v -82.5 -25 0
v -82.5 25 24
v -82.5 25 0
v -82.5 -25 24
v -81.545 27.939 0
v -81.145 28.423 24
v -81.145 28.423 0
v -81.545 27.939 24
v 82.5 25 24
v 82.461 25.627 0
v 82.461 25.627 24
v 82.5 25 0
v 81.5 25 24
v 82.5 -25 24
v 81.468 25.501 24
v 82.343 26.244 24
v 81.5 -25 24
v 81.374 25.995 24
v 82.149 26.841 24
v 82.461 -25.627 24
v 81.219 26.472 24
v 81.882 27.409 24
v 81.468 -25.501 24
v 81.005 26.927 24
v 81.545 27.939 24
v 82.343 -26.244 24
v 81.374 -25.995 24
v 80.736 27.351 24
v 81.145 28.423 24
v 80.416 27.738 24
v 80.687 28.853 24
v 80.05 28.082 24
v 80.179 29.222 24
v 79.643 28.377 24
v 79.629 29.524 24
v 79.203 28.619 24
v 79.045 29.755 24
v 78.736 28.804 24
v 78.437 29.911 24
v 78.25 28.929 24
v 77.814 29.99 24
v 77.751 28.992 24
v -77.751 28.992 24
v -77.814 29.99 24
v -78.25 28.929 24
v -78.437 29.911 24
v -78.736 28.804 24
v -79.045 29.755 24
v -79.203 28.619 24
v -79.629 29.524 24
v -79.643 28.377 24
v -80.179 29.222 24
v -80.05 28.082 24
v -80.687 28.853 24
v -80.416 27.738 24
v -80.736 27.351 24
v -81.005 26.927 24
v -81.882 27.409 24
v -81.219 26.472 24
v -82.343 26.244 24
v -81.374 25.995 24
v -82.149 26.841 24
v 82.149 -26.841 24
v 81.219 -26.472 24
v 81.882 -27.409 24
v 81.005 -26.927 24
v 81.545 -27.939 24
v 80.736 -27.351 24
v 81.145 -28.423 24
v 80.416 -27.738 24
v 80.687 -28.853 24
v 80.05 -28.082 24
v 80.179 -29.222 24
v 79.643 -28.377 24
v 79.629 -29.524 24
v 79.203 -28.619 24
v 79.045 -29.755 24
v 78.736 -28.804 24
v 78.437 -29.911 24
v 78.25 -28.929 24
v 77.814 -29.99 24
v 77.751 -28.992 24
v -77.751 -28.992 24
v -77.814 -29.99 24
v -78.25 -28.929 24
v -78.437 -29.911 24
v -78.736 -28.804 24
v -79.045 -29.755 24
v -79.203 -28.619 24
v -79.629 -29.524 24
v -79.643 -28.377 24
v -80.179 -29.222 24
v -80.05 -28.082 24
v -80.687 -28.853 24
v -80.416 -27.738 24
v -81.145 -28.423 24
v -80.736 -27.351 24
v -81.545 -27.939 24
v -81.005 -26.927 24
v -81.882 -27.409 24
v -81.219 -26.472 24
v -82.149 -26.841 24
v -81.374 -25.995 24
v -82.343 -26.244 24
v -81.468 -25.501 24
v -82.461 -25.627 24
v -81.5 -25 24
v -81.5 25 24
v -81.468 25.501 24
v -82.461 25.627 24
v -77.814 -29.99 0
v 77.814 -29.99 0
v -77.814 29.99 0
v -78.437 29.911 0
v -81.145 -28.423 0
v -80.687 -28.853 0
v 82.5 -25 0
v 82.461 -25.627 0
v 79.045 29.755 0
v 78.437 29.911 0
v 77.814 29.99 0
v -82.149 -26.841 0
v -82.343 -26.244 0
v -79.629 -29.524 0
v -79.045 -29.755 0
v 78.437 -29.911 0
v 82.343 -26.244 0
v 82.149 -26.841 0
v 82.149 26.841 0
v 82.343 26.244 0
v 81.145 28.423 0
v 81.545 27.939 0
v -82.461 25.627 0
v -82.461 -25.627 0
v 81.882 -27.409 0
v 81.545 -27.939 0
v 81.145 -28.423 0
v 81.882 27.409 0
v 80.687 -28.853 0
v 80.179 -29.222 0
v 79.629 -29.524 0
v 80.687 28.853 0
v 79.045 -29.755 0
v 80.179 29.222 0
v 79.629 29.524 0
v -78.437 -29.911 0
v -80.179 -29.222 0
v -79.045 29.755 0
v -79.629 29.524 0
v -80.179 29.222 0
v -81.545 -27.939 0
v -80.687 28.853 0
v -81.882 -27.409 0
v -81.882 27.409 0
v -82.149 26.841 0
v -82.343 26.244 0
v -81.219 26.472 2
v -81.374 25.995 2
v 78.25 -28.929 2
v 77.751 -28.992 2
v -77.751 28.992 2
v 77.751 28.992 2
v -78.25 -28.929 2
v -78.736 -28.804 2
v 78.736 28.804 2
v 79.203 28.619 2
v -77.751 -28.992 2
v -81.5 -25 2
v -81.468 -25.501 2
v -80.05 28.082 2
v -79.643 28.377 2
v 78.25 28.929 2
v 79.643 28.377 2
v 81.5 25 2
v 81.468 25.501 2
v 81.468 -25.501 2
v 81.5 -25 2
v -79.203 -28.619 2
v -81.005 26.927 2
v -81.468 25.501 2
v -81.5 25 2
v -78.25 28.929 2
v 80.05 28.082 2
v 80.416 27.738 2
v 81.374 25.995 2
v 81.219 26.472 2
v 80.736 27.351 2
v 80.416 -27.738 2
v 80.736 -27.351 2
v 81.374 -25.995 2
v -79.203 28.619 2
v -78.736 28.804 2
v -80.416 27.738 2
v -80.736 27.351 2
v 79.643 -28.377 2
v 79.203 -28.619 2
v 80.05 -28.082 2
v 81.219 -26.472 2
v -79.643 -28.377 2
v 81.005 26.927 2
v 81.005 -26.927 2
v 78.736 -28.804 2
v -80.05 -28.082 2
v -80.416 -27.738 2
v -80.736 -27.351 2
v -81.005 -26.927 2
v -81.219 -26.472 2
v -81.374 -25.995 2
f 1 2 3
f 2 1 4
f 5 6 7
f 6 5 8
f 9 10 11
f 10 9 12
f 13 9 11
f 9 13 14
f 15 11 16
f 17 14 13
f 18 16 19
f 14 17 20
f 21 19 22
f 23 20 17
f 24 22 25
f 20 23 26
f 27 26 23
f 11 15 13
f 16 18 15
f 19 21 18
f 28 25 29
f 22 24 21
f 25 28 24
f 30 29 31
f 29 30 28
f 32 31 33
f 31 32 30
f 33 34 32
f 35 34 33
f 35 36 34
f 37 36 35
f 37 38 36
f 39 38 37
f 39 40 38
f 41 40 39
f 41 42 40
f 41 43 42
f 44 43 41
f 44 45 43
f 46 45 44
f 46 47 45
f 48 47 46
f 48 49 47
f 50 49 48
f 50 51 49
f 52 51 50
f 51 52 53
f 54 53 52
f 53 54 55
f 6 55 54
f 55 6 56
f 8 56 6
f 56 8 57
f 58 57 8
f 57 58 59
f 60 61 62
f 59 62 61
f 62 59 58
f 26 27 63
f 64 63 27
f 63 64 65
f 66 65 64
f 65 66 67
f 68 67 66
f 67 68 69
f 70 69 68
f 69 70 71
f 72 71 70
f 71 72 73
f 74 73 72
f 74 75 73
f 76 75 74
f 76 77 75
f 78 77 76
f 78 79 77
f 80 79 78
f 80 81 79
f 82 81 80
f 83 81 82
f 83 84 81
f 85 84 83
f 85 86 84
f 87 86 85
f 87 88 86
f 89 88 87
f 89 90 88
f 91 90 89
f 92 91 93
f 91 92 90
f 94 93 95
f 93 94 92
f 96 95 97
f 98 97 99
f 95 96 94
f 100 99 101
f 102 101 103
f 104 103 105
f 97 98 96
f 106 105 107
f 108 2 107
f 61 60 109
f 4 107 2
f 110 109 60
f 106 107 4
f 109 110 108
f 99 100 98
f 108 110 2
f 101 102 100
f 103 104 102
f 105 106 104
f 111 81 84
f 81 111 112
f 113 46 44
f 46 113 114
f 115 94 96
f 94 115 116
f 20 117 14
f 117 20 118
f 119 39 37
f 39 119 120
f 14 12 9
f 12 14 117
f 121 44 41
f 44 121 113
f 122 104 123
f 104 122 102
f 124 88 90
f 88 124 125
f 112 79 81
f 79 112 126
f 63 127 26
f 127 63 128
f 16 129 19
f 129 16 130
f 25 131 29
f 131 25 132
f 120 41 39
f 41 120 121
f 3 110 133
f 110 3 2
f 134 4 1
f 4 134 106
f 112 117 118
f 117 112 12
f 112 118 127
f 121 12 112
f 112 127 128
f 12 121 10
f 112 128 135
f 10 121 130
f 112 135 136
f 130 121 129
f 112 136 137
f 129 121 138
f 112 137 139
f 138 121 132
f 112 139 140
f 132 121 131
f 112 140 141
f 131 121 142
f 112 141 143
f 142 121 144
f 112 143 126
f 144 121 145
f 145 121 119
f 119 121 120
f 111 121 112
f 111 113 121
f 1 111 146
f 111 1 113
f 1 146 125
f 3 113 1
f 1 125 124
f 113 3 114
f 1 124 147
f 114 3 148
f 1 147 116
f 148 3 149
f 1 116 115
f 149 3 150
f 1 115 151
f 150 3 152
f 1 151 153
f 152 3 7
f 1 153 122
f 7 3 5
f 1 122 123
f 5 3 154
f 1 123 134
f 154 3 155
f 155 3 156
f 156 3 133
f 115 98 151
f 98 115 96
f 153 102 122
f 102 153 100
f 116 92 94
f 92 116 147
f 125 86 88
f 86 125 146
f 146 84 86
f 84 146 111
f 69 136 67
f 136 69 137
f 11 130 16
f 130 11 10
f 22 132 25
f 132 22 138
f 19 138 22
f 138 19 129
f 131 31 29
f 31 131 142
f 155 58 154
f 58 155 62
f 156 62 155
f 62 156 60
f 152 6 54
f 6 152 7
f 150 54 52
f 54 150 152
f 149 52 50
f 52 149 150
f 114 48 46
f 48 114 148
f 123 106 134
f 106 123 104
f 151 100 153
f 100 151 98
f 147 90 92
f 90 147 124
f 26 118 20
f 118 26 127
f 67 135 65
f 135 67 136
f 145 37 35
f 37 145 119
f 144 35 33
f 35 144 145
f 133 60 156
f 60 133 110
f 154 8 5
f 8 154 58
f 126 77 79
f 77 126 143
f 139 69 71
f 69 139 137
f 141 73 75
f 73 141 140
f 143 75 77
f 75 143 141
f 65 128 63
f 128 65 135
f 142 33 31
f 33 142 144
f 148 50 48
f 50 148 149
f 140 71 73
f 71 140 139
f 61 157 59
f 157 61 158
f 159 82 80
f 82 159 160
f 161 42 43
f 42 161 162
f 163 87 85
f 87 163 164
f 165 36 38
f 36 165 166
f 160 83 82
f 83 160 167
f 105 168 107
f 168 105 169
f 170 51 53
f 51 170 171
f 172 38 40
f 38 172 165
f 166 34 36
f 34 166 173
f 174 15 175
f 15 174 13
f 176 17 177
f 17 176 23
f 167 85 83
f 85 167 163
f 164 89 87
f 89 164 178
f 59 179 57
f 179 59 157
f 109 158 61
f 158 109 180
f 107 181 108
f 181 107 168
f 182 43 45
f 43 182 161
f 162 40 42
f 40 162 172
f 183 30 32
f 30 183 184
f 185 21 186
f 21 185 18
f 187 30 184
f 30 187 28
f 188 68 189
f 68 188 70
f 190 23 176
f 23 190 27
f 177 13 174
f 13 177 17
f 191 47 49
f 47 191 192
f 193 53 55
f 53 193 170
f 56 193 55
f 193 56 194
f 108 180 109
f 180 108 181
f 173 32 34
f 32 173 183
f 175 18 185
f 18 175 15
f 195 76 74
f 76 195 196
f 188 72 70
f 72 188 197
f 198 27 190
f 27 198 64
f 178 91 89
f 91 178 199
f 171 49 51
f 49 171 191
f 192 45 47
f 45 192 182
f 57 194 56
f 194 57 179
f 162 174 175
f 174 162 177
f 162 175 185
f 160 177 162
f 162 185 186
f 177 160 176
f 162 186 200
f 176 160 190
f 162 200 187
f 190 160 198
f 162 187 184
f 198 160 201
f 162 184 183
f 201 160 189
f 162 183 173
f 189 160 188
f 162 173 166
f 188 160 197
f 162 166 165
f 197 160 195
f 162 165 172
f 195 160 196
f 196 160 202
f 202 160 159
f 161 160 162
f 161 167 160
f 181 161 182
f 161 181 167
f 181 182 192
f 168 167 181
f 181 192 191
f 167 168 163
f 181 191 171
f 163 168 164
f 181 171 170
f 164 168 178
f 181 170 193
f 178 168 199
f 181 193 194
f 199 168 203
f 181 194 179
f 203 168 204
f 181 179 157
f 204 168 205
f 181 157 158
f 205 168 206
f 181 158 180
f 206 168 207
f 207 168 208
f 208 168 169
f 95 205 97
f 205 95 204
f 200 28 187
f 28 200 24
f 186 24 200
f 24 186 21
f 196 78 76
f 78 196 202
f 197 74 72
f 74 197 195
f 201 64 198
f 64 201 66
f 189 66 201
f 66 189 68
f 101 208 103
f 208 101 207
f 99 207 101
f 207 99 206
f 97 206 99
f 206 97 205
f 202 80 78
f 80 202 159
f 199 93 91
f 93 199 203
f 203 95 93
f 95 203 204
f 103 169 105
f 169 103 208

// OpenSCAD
$fn = 50;


difference() {
	union() {
		hull() {
			translate(v = [-77.5000000000, 25.0000000000, 0]) {
				cylinder(h = 24, r = 5);
			}
			translate(v = [77.5000000000, 25.0000000000, 0]) {
				cylinder(h = 24, r = 5);
			}
			translate(v = [-77.5000000000, -25.0000000000, 0]) {
				cylinder(h = 24, r = 5);
			}
			translate(v = [77.5000000000, -25.0000000000, 0]) {
				cylinder(h = 24, r = 5);
			}
		}
	}
	union() {
		translate(v = [0, 0, 2]) {
			hull() {
				translate(v = [-77.5000000000, 25.0000000000, 0]) {
					cylinder(h = 22, r = 4);
				}
				translate(v = [77.5000000000, 25.0000000000, 0]) {
					cylinder(h = 22, r = 4);
				}
				translate(v = [-77.5000000000, -25.0000000000, 0]) {
					cylinder(h = 22, r = 4);
				}
				translate(v = [77.5000000000, -25.0000000000, 0]) {
					cylinder(h = 22, r = 4);
				}
			}
		}
	}
}
